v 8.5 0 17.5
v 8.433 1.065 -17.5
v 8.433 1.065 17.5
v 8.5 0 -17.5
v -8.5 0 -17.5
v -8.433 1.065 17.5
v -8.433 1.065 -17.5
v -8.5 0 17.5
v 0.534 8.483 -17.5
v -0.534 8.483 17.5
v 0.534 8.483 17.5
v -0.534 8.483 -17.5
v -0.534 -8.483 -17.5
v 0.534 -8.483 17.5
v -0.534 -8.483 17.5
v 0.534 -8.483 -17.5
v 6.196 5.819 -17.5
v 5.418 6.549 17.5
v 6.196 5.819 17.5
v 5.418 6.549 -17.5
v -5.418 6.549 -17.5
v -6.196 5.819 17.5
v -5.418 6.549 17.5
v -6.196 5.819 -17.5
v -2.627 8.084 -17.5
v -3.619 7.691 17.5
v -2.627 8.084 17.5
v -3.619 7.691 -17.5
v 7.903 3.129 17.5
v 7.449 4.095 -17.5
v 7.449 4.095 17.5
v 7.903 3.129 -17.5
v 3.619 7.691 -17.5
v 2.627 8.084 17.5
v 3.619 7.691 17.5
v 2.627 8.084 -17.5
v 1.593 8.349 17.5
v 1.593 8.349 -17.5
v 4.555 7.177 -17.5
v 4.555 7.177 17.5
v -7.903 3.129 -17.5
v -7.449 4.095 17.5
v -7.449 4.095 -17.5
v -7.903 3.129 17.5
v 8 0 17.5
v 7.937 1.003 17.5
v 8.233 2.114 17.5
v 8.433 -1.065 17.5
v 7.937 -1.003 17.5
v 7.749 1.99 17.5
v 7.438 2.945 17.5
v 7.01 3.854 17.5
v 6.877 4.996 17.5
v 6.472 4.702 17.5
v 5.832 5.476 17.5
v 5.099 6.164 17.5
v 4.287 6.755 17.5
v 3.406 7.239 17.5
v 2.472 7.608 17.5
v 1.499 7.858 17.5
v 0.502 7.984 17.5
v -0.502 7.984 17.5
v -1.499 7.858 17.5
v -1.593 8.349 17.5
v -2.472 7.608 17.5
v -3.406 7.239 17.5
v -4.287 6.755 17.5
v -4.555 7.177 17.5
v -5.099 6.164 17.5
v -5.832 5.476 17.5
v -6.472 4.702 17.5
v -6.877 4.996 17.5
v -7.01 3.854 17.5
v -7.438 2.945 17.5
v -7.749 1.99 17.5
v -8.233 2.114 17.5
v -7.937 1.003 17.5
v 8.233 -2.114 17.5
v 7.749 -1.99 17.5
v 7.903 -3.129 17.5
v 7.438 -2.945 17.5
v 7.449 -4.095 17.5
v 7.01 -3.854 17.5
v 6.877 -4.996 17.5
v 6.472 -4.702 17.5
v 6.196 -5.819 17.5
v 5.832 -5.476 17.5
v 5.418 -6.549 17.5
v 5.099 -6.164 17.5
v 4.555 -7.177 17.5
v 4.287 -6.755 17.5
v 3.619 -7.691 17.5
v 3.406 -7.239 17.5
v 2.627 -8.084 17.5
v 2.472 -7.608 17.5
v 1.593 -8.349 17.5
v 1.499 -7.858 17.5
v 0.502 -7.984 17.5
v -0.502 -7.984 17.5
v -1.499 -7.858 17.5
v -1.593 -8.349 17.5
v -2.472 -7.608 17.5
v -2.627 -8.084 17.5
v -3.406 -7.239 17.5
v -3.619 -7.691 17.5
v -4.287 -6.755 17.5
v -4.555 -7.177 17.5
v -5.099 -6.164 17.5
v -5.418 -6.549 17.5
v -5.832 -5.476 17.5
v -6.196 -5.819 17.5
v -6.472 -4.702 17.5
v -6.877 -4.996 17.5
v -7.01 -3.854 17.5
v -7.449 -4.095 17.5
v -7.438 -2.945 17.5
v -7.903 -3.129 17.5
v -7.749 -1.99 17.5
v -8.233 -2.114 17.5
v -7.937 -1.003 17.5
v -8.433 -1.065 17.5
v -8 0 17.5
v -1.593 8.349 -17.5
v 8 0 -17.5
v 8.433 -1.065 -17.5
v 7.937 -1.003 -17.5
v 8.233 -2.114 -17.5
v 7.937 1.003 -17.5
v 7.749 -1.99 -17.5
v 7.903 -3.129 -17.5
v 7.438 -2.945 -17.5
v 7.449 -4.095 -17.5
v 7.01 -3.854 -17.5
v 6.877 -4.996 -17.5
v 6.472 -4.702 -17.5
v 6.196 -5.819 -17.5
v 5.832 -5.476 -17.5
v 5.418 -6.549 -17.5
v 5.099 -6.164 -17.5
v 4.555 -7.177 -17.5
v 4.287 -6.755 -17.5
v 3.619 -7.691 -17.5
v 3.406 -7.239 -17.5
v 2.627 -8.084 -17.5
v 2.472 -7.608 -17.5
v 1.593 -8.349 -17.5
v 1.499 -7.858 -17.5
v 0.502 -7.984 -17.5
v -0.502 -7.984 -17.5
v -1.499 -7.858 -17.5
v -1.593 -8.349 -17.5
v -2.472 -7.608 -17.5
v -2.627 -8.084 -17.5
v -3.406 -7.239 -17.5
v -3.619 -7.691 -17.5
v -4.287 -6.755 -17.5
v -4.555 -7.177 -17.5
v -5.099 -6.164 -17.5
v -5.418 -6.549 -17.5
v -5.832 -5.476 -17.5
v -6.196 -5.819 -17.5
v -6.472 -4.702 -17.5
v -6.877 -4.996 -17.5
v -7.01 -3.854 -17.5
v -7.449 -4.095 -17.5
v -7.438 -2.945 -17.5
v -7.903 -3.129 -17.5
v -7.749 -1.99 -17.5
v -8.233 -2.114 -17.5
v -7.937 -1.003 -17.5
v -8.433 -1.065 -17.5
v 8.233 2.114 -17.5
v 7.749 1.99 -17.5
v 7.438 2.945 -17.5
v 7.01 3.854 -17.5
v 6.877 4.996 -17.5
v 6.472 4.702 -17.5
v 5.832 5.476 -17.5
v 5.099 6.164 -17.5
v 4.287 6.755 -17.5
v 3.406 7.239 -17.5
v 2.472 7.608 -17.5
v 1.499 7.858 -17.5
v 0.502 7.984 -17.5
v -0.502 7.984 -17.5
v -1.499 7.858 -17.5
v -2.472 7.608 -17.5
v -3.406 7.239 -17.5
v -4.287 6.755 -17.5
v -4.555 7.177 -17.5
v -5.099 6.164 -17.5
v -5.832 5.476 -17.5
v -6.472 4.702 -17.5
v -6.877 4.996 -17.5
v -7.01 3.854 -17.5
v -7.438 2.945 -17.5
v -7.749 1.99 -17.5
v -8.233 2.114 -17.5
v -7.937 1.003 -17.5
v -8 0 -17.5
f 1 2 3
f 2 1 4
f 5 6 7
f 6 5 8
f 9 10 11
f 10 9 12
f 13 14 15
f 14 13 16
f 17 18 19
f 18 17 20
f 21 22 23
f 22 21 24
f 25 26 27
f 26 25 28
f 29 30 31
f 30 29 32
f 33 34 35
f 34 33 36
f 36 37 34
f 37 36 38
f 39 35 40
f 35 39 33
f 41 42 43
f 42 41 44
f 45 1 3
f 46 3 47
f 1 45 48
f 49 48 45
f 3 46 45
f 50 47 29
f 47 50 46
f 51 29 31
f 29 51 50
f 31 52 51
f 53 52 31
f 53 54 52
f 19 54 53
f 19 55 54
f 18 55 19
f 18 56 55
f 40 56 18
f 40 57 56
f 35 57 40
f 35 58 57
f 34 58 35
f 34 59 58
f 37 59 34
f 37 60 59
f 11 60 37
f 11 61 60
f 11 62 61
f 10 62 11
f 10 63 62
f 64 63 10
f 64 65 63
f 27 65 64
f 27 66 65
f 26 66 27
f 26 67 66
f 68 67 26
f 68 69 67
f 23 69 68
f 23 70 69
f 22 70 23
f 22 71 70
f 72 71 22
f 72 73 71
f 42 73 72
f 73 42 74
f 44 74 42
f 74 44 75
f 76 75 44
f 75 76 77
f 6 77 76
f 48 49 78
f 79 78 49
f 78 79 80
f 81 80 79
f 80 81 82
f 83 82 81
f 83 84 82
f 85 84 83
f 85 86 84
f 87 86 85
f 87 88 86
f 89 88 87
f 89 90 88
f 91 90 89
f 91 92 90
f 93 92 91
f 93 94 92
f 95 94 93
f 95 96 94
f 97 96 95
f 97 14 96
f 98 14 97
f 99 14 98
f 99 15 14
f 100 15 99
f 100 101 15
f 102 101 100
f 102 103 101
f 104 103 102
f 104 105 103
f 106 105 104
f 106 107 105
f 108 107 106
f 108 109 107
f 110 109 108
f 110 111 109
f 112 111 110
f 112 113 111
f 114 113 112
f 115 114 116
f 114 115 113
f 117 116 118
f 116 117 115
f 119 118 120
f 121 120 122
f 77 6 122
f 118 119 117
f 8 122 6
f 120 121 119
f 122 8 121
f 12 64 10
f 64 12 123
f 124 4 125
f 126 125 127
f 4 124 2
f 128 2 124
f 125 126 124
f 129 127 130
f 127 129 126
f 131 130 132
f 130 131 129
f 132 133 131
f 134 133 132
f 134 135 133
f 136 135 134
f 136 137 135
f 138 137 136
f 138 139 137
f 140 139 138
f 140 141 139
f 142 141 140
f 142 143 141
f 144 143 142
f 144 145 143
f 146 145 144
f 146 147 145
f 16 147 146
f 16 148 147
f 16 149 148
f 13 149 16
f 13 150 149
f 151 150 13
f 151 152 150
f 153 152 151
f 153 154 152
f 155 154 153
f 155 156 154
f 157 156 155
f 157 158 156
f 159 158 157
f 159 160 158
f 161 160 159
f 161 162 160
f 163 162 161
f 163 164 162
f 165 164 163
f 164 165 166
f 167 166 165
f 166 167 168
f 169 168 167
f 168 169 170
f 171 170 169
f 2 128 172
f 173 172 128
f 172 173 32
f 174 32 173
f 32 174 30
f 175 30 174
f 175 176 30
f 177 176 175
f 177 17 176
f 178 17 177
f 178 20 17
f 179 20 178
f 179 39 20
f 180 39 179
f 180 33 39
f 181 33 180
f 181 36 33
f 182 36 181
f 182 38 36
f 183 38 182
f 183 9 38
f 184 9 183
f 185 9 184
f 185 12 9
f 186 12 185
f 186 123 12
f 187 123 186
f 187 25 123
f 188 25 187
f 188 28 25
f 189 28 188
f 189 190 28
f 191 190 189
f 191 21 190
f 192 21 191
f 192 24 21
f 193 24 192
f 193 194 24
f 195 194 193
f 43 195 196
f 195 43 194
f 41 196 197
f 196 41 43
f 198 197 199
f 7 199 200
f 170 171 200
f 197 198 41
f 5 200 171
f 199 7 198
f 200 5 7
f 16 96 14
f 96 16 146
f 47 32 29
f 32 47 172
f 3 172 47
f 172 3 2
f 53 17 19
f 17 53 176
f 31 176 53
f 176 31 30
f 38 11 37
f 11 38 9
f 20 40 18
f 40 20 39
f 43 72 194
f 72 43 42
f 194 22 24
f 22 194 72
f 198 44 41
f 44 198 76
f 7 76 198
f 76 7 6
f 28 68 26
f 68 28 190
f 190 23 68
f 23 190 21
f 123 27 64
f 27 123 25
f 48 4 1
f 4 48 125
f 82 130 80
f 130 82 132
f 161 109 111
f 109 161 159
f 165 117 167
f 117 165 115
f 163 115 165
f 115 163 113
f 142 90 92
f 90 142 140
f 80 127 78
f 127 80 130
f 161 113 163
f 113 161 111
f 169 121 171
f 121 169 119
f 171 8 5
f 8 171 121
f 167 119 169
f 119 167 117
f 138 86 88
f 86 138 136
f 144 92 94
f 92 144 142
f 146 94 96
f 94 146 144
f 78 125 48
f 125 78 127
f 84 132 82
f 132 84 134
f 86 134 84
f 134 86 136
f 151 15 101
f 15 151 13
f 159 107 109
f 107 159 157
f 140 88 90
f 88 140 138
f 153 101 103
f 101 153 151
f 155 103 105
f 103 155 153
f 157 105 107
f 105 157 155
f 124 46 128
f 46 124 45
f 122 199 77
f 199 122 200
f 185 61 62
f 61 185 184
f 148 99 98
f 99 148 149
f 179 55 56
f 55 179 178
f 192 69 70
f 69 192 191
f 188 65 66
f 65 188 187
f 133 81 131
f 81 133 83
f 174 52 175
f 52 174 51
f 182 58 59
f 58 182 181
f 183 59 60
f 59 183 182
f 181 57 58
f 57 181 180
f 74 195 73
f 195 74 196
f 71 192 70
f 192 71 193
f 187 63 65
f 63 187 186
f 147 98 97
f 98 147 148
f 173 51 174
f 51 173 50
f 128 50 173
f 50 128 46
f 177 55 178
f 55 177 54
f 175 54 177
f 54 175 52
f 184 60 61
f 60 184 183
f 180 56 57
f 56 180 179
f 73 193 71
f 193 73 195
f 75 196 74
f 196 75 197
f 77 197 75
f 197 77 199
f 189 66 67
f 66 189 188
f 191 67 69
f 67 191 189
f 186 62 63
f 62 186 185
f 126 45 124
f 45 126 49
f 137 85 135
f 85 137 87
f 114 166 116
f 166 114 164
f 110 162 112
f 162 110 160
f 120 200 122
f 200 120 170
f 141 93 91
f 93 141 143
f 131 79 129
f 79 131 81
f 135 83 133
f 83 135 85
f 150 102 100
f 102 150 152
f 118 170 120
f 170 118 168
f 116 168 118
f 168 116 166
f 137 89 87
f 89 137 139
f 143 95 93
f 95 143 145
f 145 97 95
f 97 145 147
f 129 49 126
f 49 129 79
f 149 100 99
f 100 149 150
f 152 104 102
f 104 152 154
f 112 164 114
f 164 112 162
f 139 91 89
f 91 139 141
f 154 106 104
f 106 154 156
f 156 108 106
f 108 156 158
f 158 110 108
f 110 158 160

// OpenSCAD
$fn = 50;


difference() {
	union() {
		translate(v = [0, 0, -17.5000000000]) {
			cylinder(h = 35, r = 8.5000000000);
		}
	}
	union() {
		translate(v = [0, 0, -100.0000000000]) {
			cylinder(h = 200, r = 8);
		}
	}
}
